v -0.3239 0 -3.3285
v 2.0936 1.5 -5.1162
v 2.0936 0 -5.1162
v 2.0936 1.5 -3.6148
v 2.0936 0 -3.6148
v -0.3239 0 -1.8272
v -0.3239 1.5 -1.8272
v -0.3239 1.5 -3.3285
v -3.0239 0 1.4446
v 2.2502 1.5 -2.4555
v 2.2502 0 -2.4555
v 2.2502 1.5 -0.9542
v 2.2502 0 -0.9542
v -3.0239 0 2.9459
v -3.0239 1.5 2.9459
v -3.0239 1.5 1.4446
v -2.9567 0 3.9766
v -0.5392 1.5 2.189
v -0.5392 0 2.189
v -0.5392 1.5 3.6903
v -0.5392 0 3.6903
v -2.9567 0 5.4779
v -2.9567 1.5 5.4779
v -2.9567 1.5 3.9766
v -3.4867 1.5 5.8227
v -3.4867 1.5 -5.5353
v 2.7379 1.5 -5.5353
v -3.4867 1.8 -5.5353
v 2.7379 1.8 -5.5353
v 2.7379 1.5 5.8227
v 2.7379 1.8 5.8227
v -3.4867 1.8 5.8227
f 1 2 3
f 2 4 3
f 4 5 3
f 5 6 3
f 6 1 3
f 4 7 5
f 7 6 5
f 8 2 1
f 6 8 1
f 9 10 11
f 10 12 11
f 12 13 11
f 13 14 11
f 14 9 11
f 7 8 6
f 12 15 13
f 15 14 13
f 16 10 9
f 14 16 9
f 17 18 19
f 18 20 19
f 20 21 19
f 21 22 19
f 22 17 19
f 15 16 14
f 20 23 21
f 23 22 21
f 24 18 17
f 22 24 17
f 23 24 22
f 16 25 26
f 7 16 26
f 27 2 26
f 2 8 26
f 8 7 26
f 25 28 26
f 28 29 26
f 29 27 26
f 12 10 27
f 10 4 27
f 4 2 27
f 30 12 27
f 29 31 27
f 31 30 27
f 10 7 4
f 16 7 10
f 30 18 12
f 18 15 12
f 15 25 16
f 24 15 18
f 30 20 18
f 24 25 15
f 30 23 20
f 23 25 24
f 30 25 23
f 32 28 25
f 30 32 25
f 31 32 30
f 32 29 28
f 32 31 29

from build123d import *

# Parameters (mm, degrees)
EXTRUDE_1_DEPTH   = 1.5
EXTRUDE_1_2_DEPTH = 1.5
EXTRUDE_1_3_DEPTH = 1.5
SKETCH_2_W        = 6.224573854
SKETCH_2_H        = 11.35798735
EXTRUDE_2_DEPTH   = 0.3


with BuildPart() as part:
    # 草图1 → 凸台-拉伸1 (new body)
    with BuildSketch(Plane(origin=(0, 0, 0), x_dir=(1, 0, 0), z_dir=(0, 1, 0))):
        Polygon((2.250249032, 2.455487133), (2.250249032, 0.954155558), (-3.02390068, -2.945886183), (-3.02390068, -1.444554608), align=None)
    extrude(amount=EXTRUDE_1_DEPTH)



with BuildPart() as body_2:
    # 草图1 → Extrude 1 2 (new body)
    with BuildSketch(Plane(origin=(0, 0, 0), x_dir=(1, 0, 0), z_dir=(0, 1, 0))):
        Polygon((2.093564175, 5.11615287), (2.093564175, 3.614821296), (-0.323874137, 1.827213654), (-0.323874137, 3.328545229), align=None)
    extrude(amount=EXTRUDE_1_2_DEPTH)


with BuildPart() as body_3:
    # 草图1 → Extrude 1 3 (new body)
    with BuildSketch(Plane(origin=(0, 0, 0), x_dir=(1, 0, 0), z_dir=(0, 1, 0))):
        Polygon((-0.539241249, -2.188970073), (-0.539241249, -3.690301647), (-2.956679561, -5.477909289), (-2.956679561, -3.976577714), align=None)
    extrude(amount=EXTRUDE_1_3_DEPTH)


with BuildPart() as part_1:
    add(part.part)

    add(body_2.part)  # 凸台-拉伸2 merges body 2

    add(body_3.part)  # 凸台-拉伸2 merges body 3
    # 草图2 → 凸台-拉伸2 (add)
    with BuildSketch(Plane(origin=(0, 1.5, 0), x_dir=(1, 0, 0), z_dir=(0, 1, 0))):
        with Locations((-0.374426275, -0.143679561)):
            Rectangle(SKETCH_2_W, SKETCH_2_H)
    extrude(amount=EXTRUDE_2_DEPTH)


solid = part_1.part
